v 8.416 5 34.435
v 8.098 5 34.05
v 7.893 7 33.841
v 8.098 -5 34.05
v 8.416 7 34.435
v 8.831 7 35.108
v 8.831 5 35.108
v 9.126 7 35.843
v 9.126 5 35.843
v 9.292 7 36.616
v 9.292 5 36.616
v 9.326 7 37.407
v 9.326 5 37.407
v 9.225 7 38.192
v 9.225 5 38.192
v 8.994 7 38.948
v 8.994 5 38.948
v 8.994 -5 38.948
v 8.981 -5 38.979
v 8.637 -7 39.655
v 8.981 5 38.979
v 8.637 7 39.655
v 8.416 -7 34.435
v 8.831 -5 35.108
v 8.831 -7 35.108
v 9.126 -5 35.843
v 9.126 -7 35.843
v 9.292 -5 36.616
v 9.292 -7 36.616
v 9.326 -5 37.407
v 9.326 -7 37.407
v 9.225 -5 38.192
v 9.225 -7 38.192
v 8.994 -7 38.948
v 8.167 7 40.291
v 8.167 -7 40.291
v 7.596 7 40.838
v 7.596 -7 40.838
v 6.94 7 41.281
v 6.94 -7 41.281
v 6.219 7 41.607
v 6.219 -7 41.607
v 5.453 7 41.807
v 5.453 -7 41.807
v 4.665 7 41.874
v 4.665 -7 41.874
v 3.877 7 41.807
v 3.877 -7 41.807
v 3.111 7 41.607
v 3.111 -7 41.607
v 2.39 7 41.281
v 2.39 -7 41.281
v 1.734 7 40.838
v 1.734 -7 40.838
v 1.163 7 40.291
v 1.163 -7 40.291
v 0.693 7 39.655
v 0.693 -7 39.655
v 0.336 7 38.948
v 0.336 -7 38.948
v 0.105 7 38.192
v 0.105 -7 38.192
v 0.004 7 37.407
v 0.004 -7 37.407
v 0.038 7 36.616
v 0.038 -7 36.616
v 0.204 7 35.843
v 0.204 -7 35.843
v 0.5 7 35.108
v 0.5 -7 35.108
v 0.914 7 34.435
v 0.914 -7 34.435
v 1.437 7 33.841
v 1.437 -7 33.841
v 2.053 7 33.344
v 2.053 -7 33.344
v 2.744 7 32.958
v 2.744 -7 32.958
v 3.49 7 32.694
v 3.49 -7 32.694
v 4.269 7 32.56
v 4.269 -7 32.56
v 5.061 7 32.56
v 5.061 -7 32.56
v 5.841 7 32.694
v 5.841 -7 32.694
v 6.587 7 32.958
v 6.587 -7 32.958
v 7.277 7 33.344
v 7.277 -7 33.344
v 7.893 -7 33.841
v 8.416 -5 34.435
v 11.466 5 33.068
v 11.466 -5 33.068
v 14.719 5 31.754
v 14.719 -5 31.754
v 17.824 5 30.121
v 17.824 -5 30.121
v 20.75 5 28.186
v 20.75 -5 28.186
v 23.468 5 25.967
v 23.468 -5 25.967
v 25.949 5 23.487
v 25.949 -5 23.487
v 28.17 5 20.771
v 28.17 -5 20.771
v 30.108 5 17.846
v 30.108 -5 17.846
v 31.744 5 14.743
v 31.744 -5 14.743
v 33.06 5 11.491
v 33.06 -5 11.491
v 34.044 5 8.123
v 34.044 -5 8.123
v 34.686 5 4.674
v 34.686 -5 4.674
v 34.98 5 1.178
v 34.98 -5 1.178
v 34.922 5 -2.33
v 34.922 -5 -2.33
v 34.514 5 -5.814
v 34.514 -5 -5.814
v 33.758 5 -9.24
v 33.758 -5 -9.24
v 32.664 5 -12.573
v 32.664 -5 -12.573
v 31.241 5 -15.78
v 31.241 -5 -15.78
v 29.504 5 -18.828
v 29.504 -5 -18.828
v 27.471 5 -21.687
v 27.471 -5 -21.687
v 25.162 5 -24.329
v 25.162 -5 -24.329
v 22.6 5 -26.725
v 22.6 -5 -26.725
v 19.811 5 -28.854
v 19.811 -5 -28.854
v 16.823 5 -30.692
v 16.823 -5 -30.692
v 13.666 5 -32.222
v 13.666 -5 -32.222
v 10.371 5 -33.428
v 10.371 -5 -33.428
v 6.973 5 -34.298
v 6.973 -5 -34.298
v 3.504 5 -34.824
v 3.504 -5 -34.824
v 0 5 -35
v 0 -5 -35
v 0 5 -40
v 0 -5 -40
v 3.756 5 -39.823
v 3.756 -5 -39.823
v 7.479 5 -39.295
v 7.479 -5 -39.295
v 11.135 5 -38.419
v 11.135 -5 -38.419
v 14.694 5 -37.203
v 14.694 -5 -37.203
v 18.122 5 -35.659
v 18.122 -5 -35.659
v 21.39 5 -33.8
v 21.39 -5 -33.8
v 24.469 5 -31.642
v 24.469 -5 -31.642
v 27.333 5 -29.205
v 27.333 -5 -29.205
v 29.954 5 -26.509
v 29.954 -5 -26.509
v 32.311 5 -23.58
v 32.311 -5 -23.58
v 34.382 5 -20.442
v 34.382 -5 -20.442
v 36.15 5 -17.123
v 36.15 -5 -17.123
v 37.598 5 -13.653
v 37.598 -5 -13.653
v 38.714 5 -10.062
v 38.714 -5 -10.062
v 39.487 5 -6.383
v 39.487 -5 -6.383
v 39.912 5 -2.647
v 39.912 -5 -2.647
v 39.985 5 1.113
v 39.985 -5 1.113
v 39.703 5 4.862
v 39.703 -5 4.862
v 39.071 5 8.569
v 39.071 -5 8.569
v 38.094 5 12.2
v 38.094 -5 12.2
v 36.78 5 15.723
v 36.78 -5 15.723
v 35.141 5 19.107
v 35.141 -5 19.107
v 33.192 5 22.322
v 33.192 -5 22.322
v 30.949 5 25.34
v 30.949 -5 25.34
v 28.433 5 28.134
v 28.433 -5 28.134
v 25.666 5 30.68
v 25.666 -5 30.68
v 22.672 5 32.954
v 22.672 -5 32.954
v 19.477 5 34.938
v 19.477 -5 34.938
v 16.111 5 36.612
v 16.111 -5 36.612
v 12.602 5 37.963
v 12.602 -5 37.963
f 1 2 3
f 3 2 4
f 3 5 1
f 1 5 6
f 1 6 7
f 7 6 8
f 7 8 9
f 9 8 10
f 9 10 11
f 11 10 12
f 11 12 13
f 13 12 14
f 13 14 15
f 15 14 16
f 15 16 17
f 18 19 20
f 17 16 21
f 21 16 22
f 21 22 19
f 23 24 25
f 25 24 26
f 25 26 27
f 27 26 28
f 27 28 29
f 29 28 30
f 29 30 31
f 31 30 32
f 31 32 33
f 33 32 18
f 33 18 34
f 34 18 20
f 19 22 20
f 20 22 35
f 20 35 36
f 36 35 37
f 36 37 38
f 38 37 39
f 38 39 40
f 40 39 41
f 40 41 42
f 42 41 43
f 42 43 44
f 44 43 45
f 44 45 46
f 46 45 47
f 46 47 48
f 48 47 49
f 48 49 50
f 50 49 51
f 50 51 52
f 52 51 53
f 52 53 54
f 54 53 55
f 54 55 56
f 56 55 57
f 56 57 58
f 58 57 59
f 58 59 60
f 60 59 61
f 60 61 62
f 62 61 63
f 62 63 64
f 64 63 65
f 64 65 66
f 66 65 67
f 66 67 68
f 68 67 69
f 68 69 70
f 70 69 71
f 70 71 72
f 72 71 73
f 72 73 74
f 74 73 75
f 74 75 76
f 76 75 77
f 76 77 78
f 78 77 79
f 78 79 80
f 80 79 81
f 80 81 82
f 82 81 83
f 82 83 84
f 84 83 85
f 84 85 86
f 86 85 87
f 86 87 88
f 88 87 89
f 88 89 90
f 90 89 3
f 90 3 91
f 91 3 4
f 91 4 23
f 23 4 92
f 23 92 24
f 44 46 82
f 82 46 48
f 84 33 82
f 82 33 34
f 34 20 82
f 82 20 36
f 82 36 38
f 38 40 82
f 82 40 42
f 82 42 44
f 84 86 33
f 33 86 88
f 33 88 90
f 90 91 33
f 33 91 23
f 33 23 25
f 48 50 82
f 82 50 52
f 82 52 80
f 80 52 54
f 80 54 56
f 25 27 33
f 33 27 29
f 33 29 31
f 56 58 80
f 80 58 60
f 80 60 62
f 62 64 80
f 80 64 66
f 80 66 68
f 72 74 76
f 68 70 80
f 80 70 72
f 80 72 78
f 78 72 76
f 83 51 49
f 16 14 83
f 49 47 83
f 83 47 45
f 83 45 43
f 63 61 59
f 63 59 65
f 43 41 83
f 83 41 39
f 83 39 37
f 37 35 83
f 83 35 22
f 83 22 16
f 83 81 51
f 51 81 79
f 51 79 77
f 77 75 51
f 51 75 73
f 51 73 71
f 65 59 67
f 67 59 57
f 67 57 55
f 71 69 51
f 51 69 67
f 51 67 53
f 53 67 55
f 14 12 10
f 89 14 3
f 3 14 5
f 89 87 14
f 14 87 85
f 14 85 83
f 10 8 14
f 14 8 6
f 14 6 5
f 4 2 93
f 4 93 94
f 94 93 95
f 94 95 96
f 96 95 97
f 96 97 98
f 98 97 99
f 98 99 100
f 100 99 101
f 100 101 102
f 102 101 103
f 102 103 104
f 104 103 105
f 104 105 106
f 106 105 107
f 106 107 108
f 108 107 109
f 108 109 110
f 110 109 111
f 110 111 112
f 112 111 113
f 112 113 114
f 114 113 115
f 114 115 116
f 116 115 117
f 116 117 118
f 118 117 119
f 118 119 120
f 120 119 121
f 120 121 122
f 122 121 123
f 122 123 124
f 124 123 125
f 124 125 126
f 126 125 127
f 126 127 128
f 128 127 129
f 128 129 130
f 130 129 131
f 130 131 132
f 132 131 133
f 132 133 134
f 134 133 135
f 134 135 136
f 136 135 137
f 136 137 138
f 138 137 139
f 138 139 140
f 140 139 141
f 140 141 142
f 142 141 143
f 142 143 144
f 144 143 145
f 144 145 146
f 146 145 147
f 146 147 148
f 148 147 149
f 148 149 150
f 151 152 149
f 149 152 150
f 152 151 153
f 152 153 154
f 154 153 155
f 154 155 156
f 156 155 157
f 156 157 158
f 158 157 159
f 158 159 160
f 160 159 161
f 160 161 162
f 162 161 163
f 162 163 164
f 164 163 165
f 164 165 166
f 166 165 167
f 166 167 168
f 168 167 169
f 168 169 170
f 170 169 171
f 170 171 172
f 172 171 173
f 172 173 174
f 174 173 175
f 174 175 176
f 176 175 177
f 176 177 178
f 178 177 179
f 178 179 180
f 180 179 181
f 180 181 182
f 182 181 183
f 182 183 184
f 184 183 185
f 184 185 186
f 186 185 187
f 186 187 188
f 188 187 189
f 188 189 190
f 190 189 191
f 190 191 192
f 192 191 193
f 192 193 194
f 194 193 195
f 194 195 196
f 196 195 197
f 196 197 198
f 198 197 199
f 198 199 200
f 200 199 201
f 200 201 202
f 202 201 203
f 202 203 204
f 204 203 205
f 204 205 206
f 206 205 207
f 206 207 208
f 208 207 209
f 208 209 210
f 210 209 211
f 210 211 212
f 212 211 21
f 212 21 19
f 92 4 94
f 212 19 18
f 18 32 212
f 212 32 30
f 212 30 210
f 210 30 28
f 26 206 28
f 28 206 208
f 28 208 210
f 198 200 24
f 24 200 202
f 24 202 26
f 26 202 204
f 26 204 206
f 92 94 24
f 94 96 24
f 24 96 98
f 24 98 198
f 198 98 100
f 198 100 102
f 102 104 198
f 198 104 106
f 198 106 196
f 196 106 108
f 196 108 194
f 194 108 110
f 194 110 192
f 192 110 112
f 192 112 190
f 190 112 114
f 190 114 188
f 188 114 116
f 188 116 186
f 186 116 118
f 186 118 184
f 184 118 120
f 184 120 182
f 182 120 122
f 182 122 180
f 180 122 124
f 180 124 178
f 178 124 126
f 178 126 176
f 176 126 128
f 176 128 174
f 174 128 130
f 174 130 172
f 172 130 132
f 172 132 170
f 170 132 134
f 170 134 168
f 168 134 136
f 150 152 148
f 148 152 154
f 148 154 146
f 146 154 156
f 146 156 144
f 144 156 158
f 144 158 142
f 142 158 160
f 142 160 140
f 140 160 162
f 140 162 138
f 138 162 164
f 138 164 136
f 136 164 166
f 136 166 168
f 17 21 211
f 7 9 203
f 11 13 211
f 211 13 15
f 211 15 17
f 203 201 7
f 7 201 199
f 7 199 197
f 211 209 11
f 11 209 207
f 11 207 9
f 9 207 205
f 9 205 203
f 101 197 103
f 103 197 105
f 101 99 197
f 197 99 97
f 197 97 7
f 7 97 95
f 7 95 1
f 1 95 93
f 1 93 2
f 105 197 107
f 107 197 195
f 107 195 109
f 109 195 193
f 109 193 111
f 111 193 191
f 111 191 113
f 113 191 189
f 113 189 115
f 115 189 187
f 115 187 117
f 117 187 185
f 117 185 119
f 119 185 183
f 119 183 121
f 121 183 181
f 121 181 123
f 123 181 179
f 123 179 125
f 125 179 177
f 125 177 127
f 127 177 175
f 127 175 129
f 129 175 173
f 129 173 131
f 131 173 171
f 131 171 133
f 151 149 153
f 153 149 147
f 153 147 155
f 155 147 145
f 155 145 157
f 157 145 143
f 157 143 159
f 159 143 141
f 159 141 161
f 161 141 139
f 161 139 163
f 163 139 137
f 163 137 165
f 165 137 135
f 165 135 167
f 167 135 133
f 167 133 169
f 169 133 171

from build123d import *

# Parameters (mm, degrees)
EXTRUDE_2_DEPTH      = 7
EXTRUDE_2_DEPTH_BACK = 7
SKETCH_2_R           = 4.665046409
EXTRUDE_3_DEPTH      = 5
EXTRUDE_3_DEPTH_BACK = 5


with BuildPart() as part:
    # Эскиз2 → Бобышка-Вытянуть2 (new, two sides: drawn at the far end of the back side and taken through both)
    with BuildSketch(Plane(origin=(0, 0, 0), x_dir=(1, 0, 0), z_dir=(0, 1, 0)).offset(-EXTRUDE_2_DEPTH_BACK)):
        with Locations((4.665046409, -37.208699816)):
            Circle(SKETCH_2_R)
    extrude(amount=EXTRUDE_2_DEPTH + EXTRUDE_2_DEPTH_BACK)

    # Эскиз1 → Бобышка-Вытянуть3 (add, two sides: drawn at the far end of the back side and taken through both)
    with BuildSketch(Plane(origin=(0, 0, 0), x_dir=(1, 0, 0), z_dir=(0, 1, 0)).offset(-EXTRUDE_3_DEPTH_BACK)):
        with BuildLine():
            Line((0, 35), (0, 40))
            ThreePointArc((0, 40), (39.743847013, 4.519582352), (8.981279477, -38.978668768))
            ThreePointArc((8.981279477, -38.978668768), (9.256967162, -36.385947248), (8.098232861, -34.050236776))
            ThreePointArc((8.098232861, -34.050236776), (34.761748281, 4.076868457), (0, 35))
        make_face()
    extrude(amount=EXTRUDE_3_DEPTH + EXTRUDE_3_DEPTH_BACK)


solid = part.part
